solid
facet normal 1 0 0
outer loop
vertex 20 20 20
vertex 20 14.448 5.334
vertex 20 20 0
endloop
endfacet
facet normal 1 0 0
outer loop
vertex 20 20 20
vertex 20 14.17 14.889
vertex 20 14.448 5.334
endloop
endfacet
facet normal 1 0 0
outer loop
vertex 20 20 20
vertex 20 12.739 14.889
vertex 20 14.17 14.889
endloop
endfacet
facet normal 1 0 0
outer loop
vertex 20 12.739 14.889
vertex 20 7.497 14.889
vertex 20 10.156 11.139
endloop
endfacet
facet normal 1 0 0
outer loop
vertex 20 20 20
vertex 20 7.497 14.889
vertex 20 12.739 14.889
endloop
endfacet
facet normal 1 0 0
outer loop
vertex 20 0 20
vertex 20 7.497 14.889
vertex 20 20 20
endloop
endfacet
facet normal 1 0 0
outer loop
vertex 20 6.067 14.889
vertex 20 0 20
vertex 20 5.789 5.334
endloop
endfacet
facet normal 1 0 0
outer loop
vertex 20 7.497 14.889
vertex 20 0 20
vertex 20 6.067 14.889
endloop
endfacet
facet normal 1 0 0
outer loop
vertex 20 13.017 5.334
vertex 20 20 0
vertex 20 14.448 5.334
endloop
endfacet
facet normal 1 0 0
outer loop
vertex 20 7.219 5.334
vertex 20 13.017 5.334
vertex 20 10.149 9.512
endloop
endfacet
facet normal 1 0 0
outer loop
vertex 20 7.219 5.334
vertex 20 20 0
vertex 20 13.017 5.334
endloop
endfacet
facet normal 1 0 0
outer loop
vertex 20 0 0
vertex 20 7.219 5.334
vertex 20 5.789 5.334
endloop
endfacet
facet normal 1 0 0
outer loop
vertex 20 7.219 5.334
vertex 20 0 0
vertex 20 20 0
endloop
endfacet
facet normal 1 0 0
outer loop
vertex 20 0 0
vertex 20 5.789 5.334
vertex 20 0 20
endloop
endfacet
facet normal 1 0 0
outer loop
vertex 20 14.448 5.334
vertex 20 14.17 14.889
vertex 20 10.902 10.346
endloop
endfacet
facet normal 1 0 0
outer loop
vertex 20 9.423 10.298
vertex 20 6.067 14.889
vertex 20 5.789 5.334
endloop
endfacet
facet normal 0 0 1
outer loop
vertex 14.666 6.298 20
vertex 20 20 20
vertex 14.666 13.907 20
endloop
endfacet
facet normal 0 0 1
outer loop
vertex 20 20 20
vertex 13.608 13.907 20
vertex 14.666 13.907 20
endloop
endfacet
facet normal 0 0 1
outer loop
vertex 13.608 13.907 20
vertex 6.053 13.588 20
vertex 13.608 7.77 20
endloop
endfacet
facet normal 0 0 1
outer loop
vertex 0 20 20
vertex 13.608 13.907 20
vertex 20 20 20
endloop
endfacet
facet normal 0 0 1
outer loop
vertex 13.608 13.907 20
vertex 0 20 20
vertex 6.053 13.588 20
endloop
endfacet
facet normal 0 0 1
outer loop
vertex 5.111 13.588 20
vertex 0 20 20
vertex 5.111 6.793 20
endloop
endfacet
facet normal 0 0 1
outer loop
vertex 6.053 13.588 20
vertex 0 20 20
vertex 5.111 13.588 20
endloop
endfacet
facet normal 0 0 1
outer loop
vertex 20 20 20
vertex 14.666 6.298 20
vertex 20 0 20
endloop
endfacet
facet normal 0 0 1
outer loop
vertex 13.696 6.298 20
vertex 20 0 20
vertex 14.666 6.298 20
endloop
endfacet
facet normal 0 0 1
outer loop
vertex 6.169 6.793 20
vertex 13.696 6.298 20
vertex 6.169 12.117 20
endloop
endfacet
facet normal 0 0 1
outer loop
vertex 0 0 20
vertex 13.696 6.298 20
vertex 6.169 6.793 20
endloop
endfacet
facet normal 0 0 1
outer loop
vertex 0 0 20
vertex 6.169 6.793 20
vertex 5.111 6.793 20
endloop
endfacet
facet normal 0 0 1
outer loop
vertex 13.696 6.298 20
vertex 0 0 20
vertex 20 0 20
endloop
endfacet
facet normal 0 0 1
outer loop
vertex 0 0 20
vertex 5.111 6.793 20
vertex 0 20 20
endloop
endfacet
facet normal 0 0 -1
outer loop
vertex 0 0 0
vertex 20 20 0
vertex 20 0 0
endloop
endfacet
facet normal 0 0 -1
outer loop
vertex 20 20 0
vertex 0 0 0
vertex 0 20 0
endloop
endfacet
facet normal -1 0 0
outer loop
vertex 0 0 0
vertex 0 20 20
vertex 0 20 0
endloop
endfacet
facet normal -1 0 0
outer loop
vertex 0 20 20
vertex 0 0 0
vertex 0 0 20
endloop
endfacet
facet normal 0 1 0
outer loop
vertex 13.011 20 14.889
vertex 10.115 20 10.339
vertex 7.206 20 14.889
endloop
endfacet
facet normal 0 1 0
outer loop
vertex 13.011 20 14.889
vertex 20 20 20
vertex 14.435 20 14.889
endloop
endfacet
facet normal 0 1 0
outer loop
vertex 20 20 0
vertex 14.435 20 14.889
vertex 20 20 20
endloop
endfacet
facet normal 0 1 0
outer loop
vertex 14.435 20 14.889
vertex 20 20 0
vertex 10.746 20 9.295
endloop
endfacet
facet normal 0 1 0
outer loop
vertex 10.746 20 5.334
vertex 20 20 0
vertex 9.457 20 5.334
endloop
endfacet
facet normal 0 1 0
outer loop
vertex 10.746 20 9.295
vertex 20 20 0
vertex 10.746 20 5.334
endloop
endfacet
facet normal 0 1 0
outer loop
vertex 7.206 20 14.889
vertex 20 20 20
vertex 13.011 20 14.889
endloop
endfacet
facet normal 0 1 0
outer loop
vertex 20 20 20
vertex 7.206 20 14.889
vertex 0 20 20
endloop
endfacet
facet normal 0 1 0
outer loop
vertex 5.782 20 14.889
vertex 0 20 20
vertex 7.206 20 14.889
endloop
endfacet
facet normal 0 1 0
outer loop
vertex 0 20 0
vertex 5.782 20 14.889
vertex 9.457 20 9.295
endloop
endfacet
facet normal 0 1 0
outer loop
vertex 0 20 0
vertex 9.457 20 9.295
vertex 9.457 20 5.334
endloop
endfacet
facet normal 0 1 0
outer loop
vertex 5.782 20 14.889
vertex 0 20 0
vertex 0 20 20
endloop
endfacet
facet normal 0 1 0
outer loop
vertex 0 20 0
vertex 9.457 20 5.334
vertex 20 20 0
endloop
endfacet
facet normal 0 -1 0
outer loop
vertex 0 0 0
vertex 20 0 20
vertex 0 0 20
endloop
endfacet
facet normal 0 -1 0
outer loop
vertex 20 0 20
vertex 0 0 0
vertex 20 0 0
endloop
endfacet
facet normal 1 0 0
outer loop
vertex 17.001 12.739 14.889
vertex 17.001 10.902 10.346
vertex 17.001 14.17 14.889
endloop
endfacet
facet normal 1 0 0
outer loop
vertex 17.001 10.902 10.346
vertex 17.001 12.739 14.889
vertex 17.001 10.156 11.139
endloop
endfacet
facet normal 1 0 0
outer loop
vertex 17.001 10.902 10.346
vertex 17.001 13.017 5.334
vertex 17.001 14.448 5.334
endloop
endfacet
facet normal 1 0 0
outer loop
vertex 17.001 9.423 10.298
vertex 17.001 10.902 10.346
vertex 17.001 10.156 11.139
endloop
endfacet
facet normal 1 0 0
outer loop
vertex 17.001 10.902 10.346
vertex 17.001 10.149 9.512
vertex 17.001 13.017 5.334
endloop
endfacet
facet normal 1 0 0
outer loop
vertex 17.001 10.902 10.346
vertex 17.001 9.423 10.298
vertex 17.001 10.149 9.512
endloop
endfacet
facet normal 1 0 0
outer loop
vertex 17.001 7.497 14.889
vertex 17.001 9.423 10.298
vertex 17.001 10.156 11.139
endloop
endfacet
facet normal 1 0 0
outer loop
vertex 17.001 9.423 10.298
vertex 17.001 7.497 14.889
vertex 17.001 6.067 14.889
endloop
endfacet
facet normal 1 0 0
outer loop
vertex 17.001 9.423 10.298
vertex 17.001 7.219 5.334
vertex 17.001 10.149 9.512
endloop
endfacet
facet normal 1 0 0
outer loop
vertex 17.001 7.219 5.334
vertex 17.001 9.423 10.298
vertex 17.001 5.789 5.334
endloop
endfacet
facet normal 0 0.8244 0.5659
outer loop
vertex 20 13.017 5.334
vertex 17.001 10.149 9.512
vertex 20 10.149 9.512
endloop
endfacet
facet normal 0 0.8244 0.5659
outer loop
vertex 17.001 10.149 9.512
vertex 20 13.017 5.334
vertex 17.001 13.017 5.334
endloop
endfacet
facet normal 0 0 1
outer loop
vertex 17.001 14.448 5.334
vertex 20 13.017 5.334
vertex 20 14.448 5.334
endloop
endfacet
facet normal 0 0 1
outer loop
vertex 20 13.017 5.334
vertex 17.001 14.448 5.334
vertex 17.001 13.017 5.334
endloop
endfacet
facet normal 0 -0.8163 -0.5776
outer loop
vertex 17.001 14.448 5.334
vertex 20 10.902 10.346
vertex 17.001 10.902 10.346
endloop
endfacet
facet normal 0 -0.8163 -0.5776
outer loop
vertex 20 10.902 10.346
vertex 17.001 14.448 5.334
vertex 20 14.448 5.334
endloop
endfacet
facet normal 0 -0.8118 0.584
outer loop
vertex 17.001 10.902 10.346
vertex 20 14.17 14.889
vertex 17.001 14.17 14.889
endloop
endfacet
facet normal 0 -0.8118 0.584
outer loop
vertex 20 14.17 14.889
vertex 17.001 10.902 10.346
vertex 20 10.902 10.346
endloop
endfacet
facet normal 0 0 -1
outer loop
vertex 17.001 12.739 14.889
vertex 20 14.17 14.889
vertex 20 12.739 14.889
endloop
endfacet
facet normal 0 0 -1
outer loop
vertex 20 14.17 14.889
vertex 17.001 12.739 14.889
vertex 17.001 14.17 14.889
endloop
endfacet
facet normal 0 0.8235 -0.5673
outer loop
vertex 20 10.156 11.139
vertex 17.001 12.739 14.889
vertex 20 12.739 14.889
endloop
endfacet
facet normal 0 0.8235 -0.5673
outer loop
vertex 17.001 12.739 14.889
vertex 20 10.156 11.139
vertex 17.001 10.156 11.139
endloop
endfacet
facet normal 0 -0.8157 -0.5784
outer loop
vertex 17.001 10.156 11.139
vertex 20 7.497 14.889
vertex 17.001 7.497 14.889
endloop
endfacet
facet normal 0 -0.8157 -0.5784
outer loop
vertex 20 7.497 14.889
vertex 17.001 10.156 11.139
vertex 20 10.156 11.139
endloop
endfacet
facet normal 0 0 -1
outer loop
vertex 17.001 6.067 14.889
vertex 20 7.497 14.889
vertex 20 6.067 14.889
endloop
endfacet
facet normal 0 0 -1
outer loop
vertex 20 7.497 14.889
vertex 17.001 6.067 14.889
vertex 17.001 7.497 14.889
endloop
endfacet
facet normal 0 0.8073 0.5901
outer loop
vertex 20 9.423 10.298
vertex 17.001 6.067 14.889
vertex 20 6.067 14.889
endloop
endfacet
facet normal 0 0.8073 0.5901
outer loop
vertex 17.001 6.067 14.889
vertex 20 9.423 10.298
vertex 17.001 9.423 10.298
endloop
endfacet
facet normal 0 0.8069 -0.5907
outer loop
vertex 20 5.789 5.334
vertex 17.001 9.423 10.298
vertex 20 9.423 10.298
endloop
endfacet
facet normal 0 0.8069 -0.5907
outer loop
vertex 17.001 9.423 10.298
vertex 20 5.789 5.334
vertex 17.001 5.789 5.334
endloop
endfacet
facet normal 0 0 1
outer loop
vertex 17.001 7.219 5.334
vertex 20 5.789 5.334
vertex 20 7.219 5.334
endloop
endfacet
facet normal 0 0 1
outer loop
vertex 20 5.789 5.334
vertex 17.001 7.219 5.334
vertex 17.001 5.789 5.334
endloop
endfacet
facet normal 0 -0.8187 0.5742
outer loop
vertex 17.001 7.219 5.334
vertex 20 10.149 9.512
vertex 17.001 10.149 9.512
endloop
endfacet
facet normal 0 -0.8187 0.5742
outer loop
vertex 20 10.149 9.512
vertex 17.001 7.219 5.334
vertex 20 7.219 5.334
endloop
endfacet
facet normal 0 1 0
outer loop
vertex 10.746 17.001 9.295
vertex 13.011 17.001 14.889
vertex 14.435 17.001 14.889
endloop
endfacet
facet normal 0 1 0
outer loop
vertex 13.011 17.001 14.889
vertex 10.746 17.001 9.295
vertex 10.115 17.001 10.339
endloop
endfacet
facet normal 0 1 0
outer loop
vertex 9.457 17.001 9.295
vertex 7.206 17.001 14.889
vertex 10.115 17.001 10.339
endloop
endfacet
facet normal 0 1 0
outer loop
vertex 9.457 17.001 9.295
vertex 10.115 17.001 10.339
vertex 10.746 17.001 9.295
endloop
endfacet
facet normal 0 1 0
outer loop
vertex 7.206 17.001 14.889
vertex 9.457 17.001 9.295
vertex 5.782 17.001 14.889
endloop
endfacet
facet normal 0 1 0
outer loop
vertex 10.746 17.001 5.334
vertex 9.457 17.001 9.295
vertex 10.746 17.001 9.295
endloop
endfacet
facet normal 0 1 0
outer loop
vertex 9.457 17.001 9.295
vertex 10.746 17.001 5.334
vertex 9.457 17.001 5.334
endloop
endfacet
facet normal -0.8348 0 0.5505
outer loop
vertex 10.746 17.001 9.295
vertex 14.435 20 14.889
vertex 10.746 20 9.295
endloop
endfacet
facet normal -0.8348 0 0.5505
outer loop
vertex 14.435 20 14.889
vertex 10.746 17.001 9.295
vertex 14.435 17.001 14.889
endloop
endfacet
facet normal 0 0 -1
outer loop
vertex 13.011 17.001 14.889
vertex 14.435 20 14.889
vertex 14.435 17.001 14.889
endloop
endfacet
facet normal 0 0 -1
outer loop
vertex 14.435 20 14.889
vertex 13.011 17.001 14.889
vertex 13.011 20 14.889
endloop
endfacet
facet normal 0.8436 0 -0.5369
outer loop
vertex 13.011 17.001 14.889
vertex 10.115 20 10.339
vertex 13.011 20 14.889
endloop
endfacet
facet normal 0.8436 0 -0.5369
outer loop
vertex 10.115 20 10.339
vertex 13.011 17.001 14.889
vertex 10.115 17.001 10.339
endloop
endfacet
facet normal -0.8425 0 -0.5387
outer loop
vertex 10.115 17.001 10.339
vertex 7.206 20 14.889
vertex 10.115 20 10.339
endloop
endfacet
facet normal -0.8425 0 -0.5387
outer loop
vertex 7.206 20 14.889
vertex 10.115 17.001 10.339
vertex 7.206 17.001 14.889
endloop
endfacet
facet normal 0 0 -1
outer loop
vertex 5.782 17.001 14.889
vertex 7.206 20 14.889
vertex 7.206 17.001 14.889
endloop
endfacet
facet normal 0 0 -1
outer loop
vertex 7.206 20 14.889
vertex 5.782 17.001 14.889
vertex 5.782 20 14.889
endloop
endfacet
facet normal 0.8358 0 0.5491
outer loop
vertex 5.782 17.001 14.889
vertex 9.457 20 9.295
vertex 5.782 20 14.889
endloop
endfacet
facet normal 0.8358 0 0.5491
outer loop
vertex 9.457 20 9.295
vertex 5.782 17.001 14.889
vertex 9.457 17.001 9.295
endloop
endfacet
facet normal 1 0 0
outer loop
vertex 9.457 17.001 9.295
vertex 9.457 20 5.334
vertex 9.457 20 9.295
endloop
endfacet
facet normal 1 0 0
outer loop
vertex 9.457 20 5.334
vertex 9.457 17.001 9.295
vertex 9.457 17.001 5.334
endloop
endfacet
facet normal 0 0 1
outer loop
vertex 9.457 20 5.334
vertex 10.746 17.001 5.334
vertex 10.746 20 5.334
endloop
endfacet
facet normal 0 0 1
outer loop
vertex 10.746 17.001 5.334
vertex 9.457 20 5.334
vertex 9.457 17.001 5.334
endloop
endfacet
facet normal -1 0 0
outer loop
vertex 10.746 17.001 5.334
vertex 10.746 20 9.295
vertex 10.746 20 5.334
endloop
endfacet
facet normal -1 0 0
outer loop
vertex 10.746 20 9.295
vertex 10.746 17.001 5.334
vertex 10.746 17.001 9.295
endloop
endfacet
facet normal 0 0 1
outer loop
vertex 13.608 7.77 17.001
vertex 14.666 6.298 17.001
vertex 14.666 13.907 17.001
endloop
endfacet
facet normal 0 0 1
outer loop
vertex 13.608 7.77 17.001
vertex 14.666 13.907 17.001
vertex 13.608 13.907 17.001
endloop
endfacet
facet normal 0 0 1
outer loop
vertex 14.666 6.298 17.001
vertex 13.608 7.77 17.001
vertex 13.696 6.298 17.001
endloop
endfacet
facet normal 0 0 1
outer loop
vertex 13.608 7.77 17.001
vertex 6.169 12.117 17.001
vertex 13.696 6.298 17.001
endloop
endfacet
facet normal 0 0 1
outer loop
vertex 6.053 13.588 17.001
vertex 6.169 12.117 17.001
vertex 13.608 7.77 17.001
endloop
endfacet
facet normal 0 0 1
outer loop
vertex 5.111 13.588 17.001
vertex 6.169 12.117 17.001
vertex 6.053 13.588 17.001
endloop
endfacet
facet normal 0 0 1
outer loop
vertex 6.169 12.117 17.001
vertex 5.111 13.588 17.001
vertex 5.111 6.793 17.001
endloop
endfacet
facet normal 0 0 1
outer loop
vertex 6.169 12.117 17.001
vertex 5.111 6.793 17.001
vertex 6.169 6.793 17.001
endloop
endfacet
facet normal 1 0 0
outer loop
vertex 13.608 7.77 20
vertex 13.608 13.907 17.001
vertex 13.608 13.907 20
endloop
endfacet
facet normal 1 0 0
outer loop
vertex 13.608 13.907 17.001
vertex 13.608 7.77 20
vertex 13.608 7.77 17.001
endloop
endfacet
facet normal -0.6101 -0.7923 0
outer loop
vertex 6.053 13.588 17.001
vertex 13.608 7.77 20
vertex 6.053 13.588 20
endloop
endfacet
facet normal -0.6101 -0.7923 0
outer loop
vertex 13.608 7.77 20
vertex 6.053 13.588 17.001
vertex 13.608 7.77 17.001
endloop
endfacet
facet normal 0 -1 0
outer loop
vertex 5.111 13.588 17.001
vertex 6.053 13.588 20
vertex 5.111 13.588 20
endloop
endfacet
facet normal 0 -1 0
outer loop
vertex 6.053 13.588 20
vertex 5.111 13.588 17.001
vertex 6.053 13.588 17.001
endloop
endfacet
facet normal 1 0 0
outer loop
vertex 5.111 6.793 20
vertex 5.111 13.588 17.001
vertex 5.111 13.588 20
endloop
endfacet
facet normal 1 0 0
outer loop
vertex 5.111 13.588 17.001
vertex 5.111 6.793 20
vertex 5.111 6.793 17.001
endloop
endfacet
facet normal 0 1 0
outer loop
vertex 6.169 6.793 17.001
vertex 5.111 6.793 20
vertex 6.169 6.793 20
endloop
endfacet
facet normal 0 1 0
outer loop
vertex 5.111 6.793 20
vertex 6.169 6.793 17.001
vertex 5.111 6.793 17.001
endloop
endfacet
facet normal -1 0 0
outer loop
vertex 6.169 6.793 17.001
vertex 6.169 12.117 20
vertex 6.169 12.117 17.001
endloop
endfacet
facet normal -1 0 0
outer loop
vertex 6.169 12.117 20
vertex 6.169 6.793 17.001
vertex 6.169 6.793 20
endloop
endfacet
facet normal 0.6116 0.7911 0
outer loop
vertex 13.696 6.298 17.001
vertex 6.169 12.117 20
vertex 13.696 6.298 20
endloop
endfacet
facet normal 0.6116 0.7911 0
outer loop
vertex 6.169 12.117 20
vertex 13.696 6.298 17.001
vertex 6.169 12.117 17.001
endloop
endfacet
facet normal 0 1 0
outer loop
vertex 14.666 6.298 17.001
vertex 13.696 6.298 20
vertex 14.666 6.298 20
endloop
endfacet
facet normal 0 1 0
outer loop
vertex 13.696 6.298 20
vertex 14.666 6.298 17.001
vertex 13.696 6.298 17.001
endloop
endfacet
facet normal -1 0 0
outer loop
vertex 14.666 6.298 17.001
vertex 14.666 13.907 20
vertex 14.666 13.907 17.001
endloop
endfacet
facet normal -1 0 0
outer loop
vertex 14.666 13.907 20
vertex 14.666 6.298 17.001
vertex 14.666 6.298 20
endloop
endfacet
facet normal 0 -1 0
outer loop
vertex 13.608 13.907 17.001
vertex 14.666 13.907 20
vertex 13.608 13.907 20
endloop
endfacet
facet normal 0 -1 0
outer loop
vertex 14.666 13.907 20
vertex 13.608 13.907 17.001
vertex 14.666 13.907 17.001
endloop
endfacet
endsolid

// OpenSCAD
$fn=50;
size=20;
text_depth=3;

module X() {
    translate([size-text_depth+.001,size/2,size/2])
    rotate([90,00,90])
    linear_extrude(text_depth)
        text("X", size=size/2, halign="center", valign="center");
}

module Y() {
    translate([size/2, size+.001, size/2])
    rotate(a=90, v=[1,0,0])
    linear_extrude(text_depth)
        text("Y", size=size/2, halign="center", valign="center");
}

module Z() {
    translate([size/2,size/2, size-text_depth+.001])
    rotate(a=90, v=[0,0,1])
    linear_extrude(text_depth) 
        text("Z", size=size/2, halign="center", valign="center");
}

module calibration_cube() {
    difference(){
        cube(size=size);
        X();
        Y();
        Z();
    }
}

calibration_cube();
